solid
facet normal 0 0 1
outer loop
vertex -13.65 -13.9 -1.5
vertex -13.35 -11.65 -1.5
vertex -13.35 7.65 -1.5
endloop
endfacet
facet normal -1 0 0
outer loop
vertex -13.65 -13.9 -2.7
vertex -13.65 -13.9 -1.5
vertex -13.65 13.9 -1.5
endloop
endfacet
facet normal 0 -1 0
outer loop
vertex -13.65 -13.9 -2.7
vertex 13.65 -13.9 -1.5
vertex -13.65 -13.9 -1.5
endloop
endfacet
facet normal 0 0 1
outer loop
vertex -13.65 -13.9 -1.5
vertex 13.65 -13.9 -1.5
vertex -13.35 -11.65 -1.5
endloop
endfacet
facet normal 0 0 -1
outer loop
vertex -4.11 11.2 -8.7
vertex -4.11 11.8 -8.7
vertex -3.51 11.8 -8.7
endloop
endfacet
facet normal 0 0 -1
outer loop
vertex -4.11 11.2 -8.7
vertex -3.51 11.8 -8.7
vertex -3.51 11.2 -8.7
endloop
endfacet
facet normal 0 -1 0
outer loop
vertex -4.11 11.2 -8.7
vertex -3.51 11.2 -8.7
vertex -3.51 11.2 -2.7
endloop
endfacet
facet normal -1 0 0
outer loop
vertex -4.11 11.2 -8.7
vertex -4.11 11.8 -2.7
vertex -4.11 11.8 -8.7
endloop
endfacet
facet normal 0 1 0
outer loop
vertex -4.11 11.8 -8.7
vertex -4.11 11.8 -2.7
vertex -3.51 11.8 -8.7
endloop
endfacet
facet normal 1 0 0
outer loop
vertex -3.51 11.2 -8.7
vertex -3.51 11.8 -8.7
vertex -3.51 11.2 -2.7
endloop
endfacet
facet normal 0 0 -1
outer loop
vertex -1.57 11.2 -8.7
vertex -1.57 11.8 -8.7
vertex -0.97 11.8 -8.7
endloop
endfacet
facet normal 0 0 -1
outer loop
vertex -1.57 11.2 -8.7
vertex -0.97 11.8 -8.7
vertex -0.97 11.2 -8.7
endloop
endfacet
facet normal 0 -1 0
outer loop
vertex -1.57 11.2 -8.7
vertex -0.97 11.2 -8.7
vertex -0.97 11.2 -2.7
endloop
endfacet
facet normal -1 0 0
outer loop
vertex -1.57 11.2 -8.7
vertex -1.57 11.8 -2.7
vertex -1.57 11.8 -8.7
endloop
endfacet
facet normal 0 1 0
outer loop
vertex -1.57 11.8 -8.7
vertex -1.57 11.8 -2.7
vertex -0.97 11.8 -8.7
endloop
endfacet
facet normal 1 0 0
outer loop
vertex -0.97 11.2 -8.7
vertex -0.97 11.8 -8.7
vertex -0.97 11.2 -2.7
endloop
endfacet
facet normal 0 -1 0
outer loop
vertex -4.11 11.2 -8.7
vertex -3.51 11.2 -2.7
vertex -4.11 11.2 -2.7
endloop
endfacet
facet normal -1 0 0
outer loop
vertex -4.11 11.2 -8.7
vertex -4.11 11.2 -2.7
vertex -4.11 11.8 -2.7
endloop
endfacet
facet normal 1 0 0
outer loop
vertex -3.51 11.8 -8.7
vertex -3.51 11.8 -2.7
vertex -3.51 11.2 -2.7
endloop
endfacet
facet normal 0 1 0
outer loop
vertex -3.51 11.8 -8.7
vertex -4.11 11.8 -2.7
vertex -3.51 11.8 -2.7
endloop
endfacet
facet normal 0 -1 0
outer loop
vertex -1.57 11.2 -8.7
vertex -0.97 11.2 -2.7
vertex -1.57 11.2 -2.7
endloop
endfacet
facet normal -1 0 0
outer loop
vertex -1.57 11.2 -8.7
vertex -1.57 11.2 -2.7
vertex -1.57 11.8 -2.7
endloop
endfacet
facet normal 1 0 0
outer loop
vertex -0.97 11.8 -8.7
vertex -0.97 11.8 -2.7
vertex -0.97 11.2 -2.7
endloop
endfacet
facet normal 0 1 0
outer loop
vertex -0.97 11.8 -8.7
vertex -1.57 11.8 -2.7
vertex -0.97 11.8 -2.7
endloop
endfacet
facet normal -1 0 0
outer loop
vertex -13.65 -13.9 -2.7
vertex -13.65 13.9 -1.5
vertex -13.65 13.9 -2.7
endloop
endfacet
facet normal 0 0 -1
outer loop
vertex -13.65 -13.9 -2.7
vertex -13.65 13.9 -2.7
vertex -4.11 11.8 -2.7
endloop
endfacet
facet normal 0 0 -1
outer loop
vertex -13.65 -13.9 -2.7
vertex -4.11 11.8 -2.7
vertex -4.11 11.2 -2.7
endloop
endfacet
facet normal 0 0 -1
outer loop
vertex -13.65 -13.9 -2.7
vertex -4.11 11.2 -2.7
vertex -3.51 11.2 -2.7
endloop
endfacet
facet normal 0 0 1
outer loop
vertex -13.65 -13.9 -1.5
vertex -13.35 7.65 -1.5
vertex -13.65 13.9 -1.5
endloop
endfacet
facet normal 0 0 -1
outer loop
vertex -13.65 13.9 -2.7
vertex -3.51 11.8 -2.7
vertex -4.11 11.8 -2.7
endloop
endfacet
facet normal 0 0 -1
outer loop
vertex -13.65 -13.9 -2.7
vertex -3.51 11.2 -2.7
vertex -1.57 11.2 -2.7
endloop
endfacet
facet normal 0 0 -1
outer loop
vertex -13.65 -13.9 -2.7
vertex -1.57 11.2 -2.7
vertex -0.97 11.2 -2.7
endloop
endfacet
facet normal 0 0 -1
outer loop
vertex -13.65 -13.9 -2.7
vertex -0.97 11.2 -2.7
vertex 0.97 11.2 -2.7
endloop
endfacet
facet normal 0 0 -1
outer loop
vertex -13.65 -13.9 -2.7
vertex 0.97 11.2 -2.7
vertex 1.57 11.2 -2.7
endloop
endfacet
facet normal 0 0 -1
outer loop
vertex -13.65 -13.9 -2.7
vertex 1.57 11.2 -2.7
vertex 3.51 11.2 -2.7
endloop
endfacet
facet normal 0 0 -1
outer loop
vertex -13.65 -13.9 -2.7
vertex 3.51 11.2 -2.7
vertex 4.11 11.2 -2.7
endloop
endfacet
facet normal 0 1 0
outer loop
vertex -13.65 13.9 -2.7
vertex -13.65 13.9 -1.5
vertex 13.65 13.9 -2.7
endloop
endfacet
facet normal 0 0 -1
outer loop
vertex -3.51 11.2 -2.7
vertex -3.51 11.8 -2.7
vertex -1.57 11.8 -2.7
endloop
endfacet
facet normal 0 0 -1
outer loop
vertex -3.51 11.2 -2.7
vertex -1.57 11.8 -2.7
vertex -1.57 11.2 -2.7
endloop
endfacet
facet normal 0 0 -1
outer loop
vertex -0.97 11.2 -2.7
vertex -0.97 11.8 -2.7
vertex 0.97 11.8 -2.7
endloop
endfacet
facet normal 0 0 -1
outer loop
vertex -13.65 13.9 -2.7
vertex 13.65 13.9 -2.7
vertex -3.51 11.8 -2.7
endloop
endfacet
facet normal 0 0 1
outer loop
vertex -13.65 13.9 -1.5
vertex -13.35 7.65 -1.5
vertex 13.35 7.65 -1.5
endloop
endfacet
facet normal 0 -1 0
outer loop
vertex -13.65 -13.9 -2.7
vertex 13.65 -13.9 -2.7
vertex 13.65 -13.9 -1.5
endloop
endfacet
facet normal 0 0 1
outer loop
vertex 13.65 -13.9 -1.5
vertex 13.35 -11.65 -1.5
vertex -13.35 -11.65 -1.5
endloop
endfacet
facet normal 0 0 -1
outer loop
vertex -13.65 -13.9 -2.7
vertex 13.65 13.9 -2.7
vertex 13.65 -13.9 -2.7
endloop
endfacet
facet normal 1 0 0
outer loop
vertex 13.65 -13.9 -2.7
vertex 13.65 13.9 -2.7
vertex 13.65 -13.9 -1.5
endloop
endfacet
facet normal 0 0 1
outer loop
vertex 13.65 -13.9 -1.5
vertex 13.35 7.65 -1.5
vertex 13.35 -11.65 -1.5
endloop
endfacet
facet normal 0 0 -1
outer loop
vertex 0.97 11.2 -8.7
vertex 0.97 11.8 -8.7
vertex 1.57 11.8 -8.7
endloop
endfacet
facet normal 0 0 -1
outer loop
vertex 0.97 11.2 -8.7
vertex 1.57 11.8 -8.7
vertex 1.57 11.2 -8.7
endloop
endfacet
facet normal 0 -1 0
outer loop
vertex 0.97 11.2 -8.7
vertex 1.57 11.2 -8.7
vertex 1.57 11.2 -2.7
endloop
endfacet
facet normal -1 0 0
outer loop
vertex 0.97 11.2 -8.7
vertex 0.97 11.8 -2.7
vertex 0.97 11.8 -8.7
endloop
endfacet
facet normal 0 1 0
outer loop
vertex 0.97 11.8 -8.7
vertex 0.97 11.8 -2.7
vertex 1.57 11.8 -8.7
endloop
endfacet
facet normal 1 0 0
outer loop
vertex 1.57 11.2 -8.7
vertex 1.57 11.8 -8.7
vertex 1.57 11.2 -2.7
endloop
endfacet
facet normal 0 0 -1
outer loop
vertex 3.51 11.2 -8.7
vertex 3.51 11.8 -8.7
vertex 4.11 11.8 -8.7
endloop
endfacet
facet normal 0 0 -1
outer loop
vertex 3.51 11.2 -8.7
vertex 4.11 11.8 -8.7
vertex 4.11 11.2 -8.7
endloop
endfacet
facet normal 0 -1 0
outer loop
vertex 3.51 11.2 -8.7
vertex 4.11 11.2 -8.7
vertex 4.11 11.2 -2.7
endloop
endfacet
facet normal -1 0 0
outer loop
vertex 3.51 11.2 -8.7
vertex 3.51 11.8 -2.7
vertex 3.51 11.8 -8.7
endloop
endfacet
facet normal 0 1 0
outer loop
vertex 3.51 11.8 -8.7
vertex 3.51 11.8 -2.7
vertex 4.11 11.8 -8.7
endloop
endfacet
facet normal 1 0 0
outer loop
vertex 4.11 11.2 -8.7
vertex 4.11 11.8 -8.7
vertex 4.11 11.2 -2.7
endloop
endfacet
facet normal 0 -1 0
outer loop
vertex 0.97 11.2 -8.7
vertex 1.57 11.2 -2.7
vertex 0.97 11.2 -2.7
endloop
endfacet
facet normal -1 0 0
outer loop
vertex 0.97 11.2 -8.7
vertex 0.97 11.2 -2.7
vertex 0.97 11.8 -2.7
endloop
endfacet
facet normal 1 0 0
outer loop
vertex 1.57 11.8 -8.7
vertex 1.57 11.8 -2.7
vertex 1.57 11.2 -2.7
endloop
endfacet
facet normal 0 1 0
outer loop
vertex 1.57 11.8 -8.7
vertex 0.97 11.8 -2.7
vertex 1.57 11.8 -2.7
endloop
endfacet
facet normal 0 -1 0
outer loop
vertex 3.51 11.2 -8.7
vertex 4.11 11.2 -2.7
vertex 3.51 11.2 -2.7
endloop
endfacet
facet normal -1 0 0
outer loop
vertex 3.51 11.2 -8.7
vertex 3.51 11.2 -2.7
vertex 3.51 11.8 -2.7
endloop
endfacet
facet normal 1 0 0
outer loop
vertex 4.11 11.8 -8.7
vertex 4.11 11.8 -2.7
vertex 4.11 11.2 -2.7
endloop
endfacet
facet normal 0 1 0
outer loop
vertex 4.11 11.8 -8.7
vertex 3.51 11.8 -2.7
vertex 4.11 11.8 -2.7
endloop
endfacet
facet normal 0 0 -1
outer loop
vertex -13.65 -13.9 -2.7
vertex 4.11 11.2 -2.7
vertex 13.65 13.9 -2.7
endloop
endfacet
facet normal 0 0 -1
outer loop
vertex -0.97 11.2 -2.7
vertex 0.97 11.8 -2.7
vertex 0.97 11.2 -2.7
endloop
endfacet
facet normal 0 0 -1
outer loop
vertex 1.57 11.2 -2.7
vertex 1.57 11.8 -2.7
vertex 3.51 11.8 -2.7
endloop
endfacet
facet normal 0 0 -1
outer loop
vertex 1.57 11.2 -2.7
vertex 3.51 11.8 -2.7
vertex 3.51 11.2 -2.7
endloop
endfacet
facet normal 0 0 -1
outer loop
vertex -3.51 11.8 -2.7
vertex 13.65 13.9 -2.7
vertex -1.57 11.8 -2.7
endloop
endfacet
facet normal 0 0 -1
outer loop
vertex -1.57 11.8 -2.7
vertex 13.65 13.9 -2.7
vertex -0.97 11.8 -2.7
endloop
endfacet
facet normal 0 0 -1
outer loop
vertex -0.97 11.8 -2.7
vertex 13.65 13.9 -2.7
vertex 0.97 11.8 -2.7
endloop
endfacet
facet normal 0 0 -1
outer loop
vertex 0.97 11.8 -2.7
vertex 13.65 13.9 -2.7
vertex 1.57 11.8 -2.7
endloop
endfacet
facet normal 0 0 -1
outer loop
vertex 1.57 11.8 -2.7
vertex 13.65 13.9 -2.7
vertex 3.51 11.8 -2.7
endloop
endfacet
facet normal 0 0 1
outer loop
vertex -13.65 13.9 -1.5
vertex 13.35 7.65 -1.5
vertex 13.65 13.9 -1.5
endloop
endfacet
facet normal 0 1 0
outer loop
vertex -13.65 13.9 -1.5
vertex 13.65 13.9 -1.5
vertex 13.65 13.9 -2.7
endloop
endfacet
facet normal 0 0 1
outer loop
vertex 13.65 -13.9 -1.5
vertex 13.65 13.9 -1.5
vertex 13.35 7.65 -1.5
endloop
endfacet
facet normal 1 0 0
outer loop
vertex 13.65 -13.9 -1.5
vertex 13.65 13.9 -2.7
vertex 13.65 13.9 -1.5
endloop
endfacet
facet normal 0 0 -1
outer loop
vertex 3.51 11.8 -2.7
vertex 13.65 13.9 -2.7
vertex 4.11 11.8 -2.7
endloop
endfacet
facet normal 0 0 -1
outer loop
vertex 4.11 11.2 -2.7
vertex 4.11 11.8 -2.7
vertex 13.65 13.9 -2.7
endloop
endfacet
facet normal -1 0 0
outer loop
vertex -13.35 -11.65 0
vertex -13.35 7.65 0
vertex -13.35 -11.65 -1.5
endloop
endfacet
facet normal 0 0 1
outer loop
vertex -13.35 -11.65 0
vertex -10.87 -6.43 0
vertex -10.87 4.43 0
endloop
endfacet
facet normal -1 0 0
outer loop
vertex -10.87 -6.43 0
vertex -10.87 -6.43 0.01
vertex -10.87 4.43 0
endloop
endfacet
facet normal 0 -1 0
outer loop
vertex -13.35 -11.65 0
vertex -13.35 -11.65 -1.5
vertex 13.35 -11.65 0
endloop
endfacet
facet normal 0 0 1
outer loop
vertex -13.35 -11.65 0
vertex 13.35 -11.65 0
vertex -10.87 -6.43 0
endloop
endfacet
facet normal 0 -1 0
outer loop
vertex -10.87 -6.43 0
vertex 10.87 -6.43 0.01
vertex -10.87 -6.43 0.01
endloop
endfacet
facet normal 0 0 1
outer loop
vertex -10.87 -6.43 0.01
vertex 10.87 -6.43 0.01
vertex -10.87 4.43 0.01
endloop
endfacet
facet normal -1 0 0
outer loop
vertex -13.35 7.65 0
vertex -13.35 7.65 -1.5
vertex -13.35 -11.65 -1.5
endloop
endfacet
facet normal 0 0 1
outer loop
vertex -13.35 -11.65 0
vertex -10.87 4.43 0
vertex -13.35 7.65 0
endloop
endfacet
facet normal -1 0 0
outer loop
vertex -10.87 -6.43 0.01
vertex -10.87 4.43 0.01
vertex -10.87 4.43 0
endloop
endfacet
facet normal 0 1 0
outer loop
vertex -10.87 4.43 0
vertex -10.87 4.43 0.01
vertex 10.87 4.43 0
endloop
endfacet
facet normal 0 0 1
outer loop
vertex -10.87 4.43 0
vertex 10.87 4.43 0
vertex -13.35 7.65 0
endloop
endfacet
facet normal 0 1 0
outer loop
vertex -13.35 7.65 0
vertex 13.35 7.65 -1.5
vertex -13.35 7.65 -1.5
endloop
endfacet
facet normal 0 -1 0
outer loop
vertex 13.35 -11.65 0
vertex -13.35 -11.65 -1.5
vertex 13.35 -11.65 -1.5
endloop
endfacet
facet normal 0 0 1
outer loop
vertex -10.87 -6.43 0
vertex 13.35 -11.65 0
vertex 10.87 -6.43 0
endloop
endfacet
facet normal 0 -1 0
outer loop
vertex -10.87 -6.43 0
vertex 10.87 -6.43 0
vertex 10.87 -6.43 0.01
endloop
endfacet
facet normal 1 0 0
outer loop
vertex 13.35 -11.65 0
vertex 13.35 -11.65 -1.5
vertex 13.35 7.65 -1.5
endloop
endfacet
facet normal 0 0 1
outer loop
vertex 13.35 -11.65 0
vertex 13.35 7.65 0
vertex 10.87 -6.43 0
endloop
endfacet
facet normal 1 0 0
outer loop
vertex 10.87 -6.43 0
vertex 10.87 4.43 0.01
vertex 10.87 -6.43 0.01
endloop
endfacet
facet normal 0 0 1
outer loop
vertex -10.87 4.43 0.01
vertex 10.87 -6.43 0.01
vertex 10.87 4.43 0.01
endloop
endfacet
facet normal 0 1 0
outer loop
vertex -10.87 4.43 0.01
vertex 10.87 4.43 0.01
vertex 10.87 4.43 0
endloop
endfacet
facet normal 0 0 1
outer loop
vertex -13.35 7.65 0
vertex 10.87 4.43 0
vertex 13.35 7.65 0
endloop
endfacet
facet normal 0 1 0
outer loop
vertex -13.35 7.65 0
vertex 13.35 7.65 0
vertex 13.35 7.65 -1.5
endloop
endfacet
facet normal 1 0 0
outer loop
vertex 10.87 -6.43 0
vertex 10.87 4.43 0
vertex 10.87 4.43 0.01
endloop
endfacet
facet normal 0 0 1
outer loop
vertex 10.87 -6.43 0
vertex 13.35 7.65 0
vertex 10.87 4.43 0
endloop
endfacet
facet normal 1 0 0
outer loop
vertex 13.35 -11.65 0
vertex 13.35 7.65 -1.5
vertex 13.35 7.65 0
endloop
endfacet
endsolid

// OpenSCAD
// file: ../lib/lib.scad
// Shared helpers. Include AFTER params.scad (needs TOL, M3_* etc.).
$fa = 4; $fs = 0.5;

module rrect(size, r) {            // 2D rounded rectangle, centred
    r2 = min(r, min(size[0], size[1]) / 2 - 0.001);
    offset(r = r2) square([size[0] - 2 * r2, size[1] - 2 * r2], center = true);
}
module rbox(size, r, center_xy = true) {   // box with rounded vertical edges
    translate(center_xy ? [0, 0, 0] : [size[0] / 2, size[1] / 2, 0])
        linear_extrude(size[2]) rrect([size[0], size[1]], r);
}
module rbox_at(x0, x1, y0, y1, z0, z1, r = 0.01) {
    translate([(x0 + x1) / 2, (y0 + y1) / 2, z0]) rbox([x1 - x0, y1 - y0, z1 - z0], r);
}
module box_at(x0, x1, y0, y1, z0, z1) { translate([x0, y0, z0]) cube([x1 - x0, y1 - y0, z1 - z0]); }

module ring(ro, ri, h) { difference() { cylinder(r = ro, h = h); translate([0, 0, -1]) cylinder(r = ri, h = h + 2); } }
module ring_sector(ro, ri, h, a0, a1) {
    intersection() {
        ring(ro, ri, h);
        linear_extrude(h) polygon(concat([[0, 0]], [for (a = [a0 : (a1 - a0) / 24 : a1]) 2 * ro * [cos(a), sin(a)]]));
    }
}
// teardrop hole along an axis lying horizontal (axis = Y after rotation), printable w/o support
module teardrop2d(d) { union() { circle(d = d); rotate(45) square(d / 2); } }
// vertical heat-set insert hole, opening at z=0 going +z (depth l)
module insert_hole(l = M3_INSERT_L) { translate([0, 0, -EPS]) cylinder(d = M3_INSERT_D, h = l + EPS); }
module m3_clear(l) { translate([0, 0, -EPS]) cylinder(d = M3_CLEAR, h = l + 2 * EPS); }
module m3_csk(l) {  // countersunk clearance from z=0 upward, head at z=0 side
    translate([0, 0, -EPS]) { cylinder(d = M3_CLEAR, h = l + 2 * EPS); cylinder(d1 = 6.4, d2 = M3_CLEAR, h = 1.7); }
}
module card2d() { rrect([CARD_L, CARD_W], CARD_R); }
module card_at(cy, z) { translate([0, cy, z]) linear_extrude(CARD_T) card2d(); }

// ---- gears ----
function _inv(a) = tan(a) - a * PI_ / 180;           // involute function, a in deg
function _invpt(rb, r, ang0, s) = let(al = acos(rb / r), th = ang0 - s * (_inv(al) * 180 / PI_)) [r * cos(th), r * sin(th)];
module involute_gear2d(m, z, pa = 20, clearance = 0.05) {
    rp = m * z / 2; rb = rp * cos(pa); ra = rp + m - clearance; rf = rp - 1.25 * m;
    half = 90 / z + _inv(pa) * 180 / PI_;            // tooth half-angle at base (deg)
    n = 8;
    rs = [for (i = [0 : n]) max(rb, rf) + (ra - max(rb, rf)) * i / n];
    union() {
        circle(r = rf, $fn = z * 4);
        for (k = [0 : z - 1]) rotate(k * 360 / z) polygon(concat(
            [[rf * cos(-half), rf * sin(-half)]],
            [for (r = rs) let(p = _invpt(rb, r, half, 1)) [p[0], -p[1]]],
            [for (i = [n : -1 : 0]) _invpt(rb, rs[i], half, 1)],
            [[rf * cos(half), rf * sin(half)]]));
    }
}
// straight gear rack (2D in XY: teeth along +x, pointing -y, pitch line at y=0)
module gear_rack2d(m, len, back = 3) {
    p = PI_ * m; ad = m; de = 1.25 * m; t = tan(20);
    n = ceil(len / p) + 1;
    intersection() {
        union() {
            translate([0, de]) square([len, back]);
            for (i = [0 : n]) translate([i * p - p / 4, 0]) polygon([
                [-(p / 4 + de * t), de + 0.01], [p / 4 + de * t + 0.01, de + 0.01],
                [p / 4 - ad * t, -ad], [-(p / 4 - ad * t), -ad] ]);
        }
        translate([0, -ad - 1]) square([len, ad + de + back + 2]);
    }
}
// GT2 belt-tooth profile ring (teeth outward), 2D
module gt2_ring2d(n, r_land, ri) {
    union() {
        difference() { circle(r = r_land + 0.01, $fn = n * 2); circle(r = ri, $fn = n * 2); }
        for (k = [0 : n - 1]) rotate(k * 360 / n)
            translate([r_land, 0]) hull() { translate([-0.2, 0]) square([0.2, 1.0], center = true); translate([0.25, 0]) circle(r = 0.5, $fn = 12); }
    }
}
// main file
// Vendor model: SSD1306 0.96in 128x64 I2C OLED module. Local: glass front face z=0 (viewing +Z), PCB behind, centred.
include <../params.scad>
include <../lib/lib.scad>
module vendor_ssd1306() {
    color([0.05,0.05,0.08]) translate([-13.35, -9.65 - 2, -1.5]) cube([26.7, 19.3, 1.5]);
    color([0.1,0.2,0.6]) translate([-10.87, -5.43 - 1, -0.01]) cube([21.74, 10.86, 0.02]);
    color([0.1,0.25,0.55]) translate([-13.65, -13.9, -2.7]) cube([27.3, 27.8, 1.2]);
    color([0.85,0.7,0.2]) for (i = [0 : 3]) translate([-3.81 + i * 2.54 - 0.3, 11.5 - 0.3, -8.7]) cube([0.6, 0.6, 6]);
}

vendor_ssd1306();
